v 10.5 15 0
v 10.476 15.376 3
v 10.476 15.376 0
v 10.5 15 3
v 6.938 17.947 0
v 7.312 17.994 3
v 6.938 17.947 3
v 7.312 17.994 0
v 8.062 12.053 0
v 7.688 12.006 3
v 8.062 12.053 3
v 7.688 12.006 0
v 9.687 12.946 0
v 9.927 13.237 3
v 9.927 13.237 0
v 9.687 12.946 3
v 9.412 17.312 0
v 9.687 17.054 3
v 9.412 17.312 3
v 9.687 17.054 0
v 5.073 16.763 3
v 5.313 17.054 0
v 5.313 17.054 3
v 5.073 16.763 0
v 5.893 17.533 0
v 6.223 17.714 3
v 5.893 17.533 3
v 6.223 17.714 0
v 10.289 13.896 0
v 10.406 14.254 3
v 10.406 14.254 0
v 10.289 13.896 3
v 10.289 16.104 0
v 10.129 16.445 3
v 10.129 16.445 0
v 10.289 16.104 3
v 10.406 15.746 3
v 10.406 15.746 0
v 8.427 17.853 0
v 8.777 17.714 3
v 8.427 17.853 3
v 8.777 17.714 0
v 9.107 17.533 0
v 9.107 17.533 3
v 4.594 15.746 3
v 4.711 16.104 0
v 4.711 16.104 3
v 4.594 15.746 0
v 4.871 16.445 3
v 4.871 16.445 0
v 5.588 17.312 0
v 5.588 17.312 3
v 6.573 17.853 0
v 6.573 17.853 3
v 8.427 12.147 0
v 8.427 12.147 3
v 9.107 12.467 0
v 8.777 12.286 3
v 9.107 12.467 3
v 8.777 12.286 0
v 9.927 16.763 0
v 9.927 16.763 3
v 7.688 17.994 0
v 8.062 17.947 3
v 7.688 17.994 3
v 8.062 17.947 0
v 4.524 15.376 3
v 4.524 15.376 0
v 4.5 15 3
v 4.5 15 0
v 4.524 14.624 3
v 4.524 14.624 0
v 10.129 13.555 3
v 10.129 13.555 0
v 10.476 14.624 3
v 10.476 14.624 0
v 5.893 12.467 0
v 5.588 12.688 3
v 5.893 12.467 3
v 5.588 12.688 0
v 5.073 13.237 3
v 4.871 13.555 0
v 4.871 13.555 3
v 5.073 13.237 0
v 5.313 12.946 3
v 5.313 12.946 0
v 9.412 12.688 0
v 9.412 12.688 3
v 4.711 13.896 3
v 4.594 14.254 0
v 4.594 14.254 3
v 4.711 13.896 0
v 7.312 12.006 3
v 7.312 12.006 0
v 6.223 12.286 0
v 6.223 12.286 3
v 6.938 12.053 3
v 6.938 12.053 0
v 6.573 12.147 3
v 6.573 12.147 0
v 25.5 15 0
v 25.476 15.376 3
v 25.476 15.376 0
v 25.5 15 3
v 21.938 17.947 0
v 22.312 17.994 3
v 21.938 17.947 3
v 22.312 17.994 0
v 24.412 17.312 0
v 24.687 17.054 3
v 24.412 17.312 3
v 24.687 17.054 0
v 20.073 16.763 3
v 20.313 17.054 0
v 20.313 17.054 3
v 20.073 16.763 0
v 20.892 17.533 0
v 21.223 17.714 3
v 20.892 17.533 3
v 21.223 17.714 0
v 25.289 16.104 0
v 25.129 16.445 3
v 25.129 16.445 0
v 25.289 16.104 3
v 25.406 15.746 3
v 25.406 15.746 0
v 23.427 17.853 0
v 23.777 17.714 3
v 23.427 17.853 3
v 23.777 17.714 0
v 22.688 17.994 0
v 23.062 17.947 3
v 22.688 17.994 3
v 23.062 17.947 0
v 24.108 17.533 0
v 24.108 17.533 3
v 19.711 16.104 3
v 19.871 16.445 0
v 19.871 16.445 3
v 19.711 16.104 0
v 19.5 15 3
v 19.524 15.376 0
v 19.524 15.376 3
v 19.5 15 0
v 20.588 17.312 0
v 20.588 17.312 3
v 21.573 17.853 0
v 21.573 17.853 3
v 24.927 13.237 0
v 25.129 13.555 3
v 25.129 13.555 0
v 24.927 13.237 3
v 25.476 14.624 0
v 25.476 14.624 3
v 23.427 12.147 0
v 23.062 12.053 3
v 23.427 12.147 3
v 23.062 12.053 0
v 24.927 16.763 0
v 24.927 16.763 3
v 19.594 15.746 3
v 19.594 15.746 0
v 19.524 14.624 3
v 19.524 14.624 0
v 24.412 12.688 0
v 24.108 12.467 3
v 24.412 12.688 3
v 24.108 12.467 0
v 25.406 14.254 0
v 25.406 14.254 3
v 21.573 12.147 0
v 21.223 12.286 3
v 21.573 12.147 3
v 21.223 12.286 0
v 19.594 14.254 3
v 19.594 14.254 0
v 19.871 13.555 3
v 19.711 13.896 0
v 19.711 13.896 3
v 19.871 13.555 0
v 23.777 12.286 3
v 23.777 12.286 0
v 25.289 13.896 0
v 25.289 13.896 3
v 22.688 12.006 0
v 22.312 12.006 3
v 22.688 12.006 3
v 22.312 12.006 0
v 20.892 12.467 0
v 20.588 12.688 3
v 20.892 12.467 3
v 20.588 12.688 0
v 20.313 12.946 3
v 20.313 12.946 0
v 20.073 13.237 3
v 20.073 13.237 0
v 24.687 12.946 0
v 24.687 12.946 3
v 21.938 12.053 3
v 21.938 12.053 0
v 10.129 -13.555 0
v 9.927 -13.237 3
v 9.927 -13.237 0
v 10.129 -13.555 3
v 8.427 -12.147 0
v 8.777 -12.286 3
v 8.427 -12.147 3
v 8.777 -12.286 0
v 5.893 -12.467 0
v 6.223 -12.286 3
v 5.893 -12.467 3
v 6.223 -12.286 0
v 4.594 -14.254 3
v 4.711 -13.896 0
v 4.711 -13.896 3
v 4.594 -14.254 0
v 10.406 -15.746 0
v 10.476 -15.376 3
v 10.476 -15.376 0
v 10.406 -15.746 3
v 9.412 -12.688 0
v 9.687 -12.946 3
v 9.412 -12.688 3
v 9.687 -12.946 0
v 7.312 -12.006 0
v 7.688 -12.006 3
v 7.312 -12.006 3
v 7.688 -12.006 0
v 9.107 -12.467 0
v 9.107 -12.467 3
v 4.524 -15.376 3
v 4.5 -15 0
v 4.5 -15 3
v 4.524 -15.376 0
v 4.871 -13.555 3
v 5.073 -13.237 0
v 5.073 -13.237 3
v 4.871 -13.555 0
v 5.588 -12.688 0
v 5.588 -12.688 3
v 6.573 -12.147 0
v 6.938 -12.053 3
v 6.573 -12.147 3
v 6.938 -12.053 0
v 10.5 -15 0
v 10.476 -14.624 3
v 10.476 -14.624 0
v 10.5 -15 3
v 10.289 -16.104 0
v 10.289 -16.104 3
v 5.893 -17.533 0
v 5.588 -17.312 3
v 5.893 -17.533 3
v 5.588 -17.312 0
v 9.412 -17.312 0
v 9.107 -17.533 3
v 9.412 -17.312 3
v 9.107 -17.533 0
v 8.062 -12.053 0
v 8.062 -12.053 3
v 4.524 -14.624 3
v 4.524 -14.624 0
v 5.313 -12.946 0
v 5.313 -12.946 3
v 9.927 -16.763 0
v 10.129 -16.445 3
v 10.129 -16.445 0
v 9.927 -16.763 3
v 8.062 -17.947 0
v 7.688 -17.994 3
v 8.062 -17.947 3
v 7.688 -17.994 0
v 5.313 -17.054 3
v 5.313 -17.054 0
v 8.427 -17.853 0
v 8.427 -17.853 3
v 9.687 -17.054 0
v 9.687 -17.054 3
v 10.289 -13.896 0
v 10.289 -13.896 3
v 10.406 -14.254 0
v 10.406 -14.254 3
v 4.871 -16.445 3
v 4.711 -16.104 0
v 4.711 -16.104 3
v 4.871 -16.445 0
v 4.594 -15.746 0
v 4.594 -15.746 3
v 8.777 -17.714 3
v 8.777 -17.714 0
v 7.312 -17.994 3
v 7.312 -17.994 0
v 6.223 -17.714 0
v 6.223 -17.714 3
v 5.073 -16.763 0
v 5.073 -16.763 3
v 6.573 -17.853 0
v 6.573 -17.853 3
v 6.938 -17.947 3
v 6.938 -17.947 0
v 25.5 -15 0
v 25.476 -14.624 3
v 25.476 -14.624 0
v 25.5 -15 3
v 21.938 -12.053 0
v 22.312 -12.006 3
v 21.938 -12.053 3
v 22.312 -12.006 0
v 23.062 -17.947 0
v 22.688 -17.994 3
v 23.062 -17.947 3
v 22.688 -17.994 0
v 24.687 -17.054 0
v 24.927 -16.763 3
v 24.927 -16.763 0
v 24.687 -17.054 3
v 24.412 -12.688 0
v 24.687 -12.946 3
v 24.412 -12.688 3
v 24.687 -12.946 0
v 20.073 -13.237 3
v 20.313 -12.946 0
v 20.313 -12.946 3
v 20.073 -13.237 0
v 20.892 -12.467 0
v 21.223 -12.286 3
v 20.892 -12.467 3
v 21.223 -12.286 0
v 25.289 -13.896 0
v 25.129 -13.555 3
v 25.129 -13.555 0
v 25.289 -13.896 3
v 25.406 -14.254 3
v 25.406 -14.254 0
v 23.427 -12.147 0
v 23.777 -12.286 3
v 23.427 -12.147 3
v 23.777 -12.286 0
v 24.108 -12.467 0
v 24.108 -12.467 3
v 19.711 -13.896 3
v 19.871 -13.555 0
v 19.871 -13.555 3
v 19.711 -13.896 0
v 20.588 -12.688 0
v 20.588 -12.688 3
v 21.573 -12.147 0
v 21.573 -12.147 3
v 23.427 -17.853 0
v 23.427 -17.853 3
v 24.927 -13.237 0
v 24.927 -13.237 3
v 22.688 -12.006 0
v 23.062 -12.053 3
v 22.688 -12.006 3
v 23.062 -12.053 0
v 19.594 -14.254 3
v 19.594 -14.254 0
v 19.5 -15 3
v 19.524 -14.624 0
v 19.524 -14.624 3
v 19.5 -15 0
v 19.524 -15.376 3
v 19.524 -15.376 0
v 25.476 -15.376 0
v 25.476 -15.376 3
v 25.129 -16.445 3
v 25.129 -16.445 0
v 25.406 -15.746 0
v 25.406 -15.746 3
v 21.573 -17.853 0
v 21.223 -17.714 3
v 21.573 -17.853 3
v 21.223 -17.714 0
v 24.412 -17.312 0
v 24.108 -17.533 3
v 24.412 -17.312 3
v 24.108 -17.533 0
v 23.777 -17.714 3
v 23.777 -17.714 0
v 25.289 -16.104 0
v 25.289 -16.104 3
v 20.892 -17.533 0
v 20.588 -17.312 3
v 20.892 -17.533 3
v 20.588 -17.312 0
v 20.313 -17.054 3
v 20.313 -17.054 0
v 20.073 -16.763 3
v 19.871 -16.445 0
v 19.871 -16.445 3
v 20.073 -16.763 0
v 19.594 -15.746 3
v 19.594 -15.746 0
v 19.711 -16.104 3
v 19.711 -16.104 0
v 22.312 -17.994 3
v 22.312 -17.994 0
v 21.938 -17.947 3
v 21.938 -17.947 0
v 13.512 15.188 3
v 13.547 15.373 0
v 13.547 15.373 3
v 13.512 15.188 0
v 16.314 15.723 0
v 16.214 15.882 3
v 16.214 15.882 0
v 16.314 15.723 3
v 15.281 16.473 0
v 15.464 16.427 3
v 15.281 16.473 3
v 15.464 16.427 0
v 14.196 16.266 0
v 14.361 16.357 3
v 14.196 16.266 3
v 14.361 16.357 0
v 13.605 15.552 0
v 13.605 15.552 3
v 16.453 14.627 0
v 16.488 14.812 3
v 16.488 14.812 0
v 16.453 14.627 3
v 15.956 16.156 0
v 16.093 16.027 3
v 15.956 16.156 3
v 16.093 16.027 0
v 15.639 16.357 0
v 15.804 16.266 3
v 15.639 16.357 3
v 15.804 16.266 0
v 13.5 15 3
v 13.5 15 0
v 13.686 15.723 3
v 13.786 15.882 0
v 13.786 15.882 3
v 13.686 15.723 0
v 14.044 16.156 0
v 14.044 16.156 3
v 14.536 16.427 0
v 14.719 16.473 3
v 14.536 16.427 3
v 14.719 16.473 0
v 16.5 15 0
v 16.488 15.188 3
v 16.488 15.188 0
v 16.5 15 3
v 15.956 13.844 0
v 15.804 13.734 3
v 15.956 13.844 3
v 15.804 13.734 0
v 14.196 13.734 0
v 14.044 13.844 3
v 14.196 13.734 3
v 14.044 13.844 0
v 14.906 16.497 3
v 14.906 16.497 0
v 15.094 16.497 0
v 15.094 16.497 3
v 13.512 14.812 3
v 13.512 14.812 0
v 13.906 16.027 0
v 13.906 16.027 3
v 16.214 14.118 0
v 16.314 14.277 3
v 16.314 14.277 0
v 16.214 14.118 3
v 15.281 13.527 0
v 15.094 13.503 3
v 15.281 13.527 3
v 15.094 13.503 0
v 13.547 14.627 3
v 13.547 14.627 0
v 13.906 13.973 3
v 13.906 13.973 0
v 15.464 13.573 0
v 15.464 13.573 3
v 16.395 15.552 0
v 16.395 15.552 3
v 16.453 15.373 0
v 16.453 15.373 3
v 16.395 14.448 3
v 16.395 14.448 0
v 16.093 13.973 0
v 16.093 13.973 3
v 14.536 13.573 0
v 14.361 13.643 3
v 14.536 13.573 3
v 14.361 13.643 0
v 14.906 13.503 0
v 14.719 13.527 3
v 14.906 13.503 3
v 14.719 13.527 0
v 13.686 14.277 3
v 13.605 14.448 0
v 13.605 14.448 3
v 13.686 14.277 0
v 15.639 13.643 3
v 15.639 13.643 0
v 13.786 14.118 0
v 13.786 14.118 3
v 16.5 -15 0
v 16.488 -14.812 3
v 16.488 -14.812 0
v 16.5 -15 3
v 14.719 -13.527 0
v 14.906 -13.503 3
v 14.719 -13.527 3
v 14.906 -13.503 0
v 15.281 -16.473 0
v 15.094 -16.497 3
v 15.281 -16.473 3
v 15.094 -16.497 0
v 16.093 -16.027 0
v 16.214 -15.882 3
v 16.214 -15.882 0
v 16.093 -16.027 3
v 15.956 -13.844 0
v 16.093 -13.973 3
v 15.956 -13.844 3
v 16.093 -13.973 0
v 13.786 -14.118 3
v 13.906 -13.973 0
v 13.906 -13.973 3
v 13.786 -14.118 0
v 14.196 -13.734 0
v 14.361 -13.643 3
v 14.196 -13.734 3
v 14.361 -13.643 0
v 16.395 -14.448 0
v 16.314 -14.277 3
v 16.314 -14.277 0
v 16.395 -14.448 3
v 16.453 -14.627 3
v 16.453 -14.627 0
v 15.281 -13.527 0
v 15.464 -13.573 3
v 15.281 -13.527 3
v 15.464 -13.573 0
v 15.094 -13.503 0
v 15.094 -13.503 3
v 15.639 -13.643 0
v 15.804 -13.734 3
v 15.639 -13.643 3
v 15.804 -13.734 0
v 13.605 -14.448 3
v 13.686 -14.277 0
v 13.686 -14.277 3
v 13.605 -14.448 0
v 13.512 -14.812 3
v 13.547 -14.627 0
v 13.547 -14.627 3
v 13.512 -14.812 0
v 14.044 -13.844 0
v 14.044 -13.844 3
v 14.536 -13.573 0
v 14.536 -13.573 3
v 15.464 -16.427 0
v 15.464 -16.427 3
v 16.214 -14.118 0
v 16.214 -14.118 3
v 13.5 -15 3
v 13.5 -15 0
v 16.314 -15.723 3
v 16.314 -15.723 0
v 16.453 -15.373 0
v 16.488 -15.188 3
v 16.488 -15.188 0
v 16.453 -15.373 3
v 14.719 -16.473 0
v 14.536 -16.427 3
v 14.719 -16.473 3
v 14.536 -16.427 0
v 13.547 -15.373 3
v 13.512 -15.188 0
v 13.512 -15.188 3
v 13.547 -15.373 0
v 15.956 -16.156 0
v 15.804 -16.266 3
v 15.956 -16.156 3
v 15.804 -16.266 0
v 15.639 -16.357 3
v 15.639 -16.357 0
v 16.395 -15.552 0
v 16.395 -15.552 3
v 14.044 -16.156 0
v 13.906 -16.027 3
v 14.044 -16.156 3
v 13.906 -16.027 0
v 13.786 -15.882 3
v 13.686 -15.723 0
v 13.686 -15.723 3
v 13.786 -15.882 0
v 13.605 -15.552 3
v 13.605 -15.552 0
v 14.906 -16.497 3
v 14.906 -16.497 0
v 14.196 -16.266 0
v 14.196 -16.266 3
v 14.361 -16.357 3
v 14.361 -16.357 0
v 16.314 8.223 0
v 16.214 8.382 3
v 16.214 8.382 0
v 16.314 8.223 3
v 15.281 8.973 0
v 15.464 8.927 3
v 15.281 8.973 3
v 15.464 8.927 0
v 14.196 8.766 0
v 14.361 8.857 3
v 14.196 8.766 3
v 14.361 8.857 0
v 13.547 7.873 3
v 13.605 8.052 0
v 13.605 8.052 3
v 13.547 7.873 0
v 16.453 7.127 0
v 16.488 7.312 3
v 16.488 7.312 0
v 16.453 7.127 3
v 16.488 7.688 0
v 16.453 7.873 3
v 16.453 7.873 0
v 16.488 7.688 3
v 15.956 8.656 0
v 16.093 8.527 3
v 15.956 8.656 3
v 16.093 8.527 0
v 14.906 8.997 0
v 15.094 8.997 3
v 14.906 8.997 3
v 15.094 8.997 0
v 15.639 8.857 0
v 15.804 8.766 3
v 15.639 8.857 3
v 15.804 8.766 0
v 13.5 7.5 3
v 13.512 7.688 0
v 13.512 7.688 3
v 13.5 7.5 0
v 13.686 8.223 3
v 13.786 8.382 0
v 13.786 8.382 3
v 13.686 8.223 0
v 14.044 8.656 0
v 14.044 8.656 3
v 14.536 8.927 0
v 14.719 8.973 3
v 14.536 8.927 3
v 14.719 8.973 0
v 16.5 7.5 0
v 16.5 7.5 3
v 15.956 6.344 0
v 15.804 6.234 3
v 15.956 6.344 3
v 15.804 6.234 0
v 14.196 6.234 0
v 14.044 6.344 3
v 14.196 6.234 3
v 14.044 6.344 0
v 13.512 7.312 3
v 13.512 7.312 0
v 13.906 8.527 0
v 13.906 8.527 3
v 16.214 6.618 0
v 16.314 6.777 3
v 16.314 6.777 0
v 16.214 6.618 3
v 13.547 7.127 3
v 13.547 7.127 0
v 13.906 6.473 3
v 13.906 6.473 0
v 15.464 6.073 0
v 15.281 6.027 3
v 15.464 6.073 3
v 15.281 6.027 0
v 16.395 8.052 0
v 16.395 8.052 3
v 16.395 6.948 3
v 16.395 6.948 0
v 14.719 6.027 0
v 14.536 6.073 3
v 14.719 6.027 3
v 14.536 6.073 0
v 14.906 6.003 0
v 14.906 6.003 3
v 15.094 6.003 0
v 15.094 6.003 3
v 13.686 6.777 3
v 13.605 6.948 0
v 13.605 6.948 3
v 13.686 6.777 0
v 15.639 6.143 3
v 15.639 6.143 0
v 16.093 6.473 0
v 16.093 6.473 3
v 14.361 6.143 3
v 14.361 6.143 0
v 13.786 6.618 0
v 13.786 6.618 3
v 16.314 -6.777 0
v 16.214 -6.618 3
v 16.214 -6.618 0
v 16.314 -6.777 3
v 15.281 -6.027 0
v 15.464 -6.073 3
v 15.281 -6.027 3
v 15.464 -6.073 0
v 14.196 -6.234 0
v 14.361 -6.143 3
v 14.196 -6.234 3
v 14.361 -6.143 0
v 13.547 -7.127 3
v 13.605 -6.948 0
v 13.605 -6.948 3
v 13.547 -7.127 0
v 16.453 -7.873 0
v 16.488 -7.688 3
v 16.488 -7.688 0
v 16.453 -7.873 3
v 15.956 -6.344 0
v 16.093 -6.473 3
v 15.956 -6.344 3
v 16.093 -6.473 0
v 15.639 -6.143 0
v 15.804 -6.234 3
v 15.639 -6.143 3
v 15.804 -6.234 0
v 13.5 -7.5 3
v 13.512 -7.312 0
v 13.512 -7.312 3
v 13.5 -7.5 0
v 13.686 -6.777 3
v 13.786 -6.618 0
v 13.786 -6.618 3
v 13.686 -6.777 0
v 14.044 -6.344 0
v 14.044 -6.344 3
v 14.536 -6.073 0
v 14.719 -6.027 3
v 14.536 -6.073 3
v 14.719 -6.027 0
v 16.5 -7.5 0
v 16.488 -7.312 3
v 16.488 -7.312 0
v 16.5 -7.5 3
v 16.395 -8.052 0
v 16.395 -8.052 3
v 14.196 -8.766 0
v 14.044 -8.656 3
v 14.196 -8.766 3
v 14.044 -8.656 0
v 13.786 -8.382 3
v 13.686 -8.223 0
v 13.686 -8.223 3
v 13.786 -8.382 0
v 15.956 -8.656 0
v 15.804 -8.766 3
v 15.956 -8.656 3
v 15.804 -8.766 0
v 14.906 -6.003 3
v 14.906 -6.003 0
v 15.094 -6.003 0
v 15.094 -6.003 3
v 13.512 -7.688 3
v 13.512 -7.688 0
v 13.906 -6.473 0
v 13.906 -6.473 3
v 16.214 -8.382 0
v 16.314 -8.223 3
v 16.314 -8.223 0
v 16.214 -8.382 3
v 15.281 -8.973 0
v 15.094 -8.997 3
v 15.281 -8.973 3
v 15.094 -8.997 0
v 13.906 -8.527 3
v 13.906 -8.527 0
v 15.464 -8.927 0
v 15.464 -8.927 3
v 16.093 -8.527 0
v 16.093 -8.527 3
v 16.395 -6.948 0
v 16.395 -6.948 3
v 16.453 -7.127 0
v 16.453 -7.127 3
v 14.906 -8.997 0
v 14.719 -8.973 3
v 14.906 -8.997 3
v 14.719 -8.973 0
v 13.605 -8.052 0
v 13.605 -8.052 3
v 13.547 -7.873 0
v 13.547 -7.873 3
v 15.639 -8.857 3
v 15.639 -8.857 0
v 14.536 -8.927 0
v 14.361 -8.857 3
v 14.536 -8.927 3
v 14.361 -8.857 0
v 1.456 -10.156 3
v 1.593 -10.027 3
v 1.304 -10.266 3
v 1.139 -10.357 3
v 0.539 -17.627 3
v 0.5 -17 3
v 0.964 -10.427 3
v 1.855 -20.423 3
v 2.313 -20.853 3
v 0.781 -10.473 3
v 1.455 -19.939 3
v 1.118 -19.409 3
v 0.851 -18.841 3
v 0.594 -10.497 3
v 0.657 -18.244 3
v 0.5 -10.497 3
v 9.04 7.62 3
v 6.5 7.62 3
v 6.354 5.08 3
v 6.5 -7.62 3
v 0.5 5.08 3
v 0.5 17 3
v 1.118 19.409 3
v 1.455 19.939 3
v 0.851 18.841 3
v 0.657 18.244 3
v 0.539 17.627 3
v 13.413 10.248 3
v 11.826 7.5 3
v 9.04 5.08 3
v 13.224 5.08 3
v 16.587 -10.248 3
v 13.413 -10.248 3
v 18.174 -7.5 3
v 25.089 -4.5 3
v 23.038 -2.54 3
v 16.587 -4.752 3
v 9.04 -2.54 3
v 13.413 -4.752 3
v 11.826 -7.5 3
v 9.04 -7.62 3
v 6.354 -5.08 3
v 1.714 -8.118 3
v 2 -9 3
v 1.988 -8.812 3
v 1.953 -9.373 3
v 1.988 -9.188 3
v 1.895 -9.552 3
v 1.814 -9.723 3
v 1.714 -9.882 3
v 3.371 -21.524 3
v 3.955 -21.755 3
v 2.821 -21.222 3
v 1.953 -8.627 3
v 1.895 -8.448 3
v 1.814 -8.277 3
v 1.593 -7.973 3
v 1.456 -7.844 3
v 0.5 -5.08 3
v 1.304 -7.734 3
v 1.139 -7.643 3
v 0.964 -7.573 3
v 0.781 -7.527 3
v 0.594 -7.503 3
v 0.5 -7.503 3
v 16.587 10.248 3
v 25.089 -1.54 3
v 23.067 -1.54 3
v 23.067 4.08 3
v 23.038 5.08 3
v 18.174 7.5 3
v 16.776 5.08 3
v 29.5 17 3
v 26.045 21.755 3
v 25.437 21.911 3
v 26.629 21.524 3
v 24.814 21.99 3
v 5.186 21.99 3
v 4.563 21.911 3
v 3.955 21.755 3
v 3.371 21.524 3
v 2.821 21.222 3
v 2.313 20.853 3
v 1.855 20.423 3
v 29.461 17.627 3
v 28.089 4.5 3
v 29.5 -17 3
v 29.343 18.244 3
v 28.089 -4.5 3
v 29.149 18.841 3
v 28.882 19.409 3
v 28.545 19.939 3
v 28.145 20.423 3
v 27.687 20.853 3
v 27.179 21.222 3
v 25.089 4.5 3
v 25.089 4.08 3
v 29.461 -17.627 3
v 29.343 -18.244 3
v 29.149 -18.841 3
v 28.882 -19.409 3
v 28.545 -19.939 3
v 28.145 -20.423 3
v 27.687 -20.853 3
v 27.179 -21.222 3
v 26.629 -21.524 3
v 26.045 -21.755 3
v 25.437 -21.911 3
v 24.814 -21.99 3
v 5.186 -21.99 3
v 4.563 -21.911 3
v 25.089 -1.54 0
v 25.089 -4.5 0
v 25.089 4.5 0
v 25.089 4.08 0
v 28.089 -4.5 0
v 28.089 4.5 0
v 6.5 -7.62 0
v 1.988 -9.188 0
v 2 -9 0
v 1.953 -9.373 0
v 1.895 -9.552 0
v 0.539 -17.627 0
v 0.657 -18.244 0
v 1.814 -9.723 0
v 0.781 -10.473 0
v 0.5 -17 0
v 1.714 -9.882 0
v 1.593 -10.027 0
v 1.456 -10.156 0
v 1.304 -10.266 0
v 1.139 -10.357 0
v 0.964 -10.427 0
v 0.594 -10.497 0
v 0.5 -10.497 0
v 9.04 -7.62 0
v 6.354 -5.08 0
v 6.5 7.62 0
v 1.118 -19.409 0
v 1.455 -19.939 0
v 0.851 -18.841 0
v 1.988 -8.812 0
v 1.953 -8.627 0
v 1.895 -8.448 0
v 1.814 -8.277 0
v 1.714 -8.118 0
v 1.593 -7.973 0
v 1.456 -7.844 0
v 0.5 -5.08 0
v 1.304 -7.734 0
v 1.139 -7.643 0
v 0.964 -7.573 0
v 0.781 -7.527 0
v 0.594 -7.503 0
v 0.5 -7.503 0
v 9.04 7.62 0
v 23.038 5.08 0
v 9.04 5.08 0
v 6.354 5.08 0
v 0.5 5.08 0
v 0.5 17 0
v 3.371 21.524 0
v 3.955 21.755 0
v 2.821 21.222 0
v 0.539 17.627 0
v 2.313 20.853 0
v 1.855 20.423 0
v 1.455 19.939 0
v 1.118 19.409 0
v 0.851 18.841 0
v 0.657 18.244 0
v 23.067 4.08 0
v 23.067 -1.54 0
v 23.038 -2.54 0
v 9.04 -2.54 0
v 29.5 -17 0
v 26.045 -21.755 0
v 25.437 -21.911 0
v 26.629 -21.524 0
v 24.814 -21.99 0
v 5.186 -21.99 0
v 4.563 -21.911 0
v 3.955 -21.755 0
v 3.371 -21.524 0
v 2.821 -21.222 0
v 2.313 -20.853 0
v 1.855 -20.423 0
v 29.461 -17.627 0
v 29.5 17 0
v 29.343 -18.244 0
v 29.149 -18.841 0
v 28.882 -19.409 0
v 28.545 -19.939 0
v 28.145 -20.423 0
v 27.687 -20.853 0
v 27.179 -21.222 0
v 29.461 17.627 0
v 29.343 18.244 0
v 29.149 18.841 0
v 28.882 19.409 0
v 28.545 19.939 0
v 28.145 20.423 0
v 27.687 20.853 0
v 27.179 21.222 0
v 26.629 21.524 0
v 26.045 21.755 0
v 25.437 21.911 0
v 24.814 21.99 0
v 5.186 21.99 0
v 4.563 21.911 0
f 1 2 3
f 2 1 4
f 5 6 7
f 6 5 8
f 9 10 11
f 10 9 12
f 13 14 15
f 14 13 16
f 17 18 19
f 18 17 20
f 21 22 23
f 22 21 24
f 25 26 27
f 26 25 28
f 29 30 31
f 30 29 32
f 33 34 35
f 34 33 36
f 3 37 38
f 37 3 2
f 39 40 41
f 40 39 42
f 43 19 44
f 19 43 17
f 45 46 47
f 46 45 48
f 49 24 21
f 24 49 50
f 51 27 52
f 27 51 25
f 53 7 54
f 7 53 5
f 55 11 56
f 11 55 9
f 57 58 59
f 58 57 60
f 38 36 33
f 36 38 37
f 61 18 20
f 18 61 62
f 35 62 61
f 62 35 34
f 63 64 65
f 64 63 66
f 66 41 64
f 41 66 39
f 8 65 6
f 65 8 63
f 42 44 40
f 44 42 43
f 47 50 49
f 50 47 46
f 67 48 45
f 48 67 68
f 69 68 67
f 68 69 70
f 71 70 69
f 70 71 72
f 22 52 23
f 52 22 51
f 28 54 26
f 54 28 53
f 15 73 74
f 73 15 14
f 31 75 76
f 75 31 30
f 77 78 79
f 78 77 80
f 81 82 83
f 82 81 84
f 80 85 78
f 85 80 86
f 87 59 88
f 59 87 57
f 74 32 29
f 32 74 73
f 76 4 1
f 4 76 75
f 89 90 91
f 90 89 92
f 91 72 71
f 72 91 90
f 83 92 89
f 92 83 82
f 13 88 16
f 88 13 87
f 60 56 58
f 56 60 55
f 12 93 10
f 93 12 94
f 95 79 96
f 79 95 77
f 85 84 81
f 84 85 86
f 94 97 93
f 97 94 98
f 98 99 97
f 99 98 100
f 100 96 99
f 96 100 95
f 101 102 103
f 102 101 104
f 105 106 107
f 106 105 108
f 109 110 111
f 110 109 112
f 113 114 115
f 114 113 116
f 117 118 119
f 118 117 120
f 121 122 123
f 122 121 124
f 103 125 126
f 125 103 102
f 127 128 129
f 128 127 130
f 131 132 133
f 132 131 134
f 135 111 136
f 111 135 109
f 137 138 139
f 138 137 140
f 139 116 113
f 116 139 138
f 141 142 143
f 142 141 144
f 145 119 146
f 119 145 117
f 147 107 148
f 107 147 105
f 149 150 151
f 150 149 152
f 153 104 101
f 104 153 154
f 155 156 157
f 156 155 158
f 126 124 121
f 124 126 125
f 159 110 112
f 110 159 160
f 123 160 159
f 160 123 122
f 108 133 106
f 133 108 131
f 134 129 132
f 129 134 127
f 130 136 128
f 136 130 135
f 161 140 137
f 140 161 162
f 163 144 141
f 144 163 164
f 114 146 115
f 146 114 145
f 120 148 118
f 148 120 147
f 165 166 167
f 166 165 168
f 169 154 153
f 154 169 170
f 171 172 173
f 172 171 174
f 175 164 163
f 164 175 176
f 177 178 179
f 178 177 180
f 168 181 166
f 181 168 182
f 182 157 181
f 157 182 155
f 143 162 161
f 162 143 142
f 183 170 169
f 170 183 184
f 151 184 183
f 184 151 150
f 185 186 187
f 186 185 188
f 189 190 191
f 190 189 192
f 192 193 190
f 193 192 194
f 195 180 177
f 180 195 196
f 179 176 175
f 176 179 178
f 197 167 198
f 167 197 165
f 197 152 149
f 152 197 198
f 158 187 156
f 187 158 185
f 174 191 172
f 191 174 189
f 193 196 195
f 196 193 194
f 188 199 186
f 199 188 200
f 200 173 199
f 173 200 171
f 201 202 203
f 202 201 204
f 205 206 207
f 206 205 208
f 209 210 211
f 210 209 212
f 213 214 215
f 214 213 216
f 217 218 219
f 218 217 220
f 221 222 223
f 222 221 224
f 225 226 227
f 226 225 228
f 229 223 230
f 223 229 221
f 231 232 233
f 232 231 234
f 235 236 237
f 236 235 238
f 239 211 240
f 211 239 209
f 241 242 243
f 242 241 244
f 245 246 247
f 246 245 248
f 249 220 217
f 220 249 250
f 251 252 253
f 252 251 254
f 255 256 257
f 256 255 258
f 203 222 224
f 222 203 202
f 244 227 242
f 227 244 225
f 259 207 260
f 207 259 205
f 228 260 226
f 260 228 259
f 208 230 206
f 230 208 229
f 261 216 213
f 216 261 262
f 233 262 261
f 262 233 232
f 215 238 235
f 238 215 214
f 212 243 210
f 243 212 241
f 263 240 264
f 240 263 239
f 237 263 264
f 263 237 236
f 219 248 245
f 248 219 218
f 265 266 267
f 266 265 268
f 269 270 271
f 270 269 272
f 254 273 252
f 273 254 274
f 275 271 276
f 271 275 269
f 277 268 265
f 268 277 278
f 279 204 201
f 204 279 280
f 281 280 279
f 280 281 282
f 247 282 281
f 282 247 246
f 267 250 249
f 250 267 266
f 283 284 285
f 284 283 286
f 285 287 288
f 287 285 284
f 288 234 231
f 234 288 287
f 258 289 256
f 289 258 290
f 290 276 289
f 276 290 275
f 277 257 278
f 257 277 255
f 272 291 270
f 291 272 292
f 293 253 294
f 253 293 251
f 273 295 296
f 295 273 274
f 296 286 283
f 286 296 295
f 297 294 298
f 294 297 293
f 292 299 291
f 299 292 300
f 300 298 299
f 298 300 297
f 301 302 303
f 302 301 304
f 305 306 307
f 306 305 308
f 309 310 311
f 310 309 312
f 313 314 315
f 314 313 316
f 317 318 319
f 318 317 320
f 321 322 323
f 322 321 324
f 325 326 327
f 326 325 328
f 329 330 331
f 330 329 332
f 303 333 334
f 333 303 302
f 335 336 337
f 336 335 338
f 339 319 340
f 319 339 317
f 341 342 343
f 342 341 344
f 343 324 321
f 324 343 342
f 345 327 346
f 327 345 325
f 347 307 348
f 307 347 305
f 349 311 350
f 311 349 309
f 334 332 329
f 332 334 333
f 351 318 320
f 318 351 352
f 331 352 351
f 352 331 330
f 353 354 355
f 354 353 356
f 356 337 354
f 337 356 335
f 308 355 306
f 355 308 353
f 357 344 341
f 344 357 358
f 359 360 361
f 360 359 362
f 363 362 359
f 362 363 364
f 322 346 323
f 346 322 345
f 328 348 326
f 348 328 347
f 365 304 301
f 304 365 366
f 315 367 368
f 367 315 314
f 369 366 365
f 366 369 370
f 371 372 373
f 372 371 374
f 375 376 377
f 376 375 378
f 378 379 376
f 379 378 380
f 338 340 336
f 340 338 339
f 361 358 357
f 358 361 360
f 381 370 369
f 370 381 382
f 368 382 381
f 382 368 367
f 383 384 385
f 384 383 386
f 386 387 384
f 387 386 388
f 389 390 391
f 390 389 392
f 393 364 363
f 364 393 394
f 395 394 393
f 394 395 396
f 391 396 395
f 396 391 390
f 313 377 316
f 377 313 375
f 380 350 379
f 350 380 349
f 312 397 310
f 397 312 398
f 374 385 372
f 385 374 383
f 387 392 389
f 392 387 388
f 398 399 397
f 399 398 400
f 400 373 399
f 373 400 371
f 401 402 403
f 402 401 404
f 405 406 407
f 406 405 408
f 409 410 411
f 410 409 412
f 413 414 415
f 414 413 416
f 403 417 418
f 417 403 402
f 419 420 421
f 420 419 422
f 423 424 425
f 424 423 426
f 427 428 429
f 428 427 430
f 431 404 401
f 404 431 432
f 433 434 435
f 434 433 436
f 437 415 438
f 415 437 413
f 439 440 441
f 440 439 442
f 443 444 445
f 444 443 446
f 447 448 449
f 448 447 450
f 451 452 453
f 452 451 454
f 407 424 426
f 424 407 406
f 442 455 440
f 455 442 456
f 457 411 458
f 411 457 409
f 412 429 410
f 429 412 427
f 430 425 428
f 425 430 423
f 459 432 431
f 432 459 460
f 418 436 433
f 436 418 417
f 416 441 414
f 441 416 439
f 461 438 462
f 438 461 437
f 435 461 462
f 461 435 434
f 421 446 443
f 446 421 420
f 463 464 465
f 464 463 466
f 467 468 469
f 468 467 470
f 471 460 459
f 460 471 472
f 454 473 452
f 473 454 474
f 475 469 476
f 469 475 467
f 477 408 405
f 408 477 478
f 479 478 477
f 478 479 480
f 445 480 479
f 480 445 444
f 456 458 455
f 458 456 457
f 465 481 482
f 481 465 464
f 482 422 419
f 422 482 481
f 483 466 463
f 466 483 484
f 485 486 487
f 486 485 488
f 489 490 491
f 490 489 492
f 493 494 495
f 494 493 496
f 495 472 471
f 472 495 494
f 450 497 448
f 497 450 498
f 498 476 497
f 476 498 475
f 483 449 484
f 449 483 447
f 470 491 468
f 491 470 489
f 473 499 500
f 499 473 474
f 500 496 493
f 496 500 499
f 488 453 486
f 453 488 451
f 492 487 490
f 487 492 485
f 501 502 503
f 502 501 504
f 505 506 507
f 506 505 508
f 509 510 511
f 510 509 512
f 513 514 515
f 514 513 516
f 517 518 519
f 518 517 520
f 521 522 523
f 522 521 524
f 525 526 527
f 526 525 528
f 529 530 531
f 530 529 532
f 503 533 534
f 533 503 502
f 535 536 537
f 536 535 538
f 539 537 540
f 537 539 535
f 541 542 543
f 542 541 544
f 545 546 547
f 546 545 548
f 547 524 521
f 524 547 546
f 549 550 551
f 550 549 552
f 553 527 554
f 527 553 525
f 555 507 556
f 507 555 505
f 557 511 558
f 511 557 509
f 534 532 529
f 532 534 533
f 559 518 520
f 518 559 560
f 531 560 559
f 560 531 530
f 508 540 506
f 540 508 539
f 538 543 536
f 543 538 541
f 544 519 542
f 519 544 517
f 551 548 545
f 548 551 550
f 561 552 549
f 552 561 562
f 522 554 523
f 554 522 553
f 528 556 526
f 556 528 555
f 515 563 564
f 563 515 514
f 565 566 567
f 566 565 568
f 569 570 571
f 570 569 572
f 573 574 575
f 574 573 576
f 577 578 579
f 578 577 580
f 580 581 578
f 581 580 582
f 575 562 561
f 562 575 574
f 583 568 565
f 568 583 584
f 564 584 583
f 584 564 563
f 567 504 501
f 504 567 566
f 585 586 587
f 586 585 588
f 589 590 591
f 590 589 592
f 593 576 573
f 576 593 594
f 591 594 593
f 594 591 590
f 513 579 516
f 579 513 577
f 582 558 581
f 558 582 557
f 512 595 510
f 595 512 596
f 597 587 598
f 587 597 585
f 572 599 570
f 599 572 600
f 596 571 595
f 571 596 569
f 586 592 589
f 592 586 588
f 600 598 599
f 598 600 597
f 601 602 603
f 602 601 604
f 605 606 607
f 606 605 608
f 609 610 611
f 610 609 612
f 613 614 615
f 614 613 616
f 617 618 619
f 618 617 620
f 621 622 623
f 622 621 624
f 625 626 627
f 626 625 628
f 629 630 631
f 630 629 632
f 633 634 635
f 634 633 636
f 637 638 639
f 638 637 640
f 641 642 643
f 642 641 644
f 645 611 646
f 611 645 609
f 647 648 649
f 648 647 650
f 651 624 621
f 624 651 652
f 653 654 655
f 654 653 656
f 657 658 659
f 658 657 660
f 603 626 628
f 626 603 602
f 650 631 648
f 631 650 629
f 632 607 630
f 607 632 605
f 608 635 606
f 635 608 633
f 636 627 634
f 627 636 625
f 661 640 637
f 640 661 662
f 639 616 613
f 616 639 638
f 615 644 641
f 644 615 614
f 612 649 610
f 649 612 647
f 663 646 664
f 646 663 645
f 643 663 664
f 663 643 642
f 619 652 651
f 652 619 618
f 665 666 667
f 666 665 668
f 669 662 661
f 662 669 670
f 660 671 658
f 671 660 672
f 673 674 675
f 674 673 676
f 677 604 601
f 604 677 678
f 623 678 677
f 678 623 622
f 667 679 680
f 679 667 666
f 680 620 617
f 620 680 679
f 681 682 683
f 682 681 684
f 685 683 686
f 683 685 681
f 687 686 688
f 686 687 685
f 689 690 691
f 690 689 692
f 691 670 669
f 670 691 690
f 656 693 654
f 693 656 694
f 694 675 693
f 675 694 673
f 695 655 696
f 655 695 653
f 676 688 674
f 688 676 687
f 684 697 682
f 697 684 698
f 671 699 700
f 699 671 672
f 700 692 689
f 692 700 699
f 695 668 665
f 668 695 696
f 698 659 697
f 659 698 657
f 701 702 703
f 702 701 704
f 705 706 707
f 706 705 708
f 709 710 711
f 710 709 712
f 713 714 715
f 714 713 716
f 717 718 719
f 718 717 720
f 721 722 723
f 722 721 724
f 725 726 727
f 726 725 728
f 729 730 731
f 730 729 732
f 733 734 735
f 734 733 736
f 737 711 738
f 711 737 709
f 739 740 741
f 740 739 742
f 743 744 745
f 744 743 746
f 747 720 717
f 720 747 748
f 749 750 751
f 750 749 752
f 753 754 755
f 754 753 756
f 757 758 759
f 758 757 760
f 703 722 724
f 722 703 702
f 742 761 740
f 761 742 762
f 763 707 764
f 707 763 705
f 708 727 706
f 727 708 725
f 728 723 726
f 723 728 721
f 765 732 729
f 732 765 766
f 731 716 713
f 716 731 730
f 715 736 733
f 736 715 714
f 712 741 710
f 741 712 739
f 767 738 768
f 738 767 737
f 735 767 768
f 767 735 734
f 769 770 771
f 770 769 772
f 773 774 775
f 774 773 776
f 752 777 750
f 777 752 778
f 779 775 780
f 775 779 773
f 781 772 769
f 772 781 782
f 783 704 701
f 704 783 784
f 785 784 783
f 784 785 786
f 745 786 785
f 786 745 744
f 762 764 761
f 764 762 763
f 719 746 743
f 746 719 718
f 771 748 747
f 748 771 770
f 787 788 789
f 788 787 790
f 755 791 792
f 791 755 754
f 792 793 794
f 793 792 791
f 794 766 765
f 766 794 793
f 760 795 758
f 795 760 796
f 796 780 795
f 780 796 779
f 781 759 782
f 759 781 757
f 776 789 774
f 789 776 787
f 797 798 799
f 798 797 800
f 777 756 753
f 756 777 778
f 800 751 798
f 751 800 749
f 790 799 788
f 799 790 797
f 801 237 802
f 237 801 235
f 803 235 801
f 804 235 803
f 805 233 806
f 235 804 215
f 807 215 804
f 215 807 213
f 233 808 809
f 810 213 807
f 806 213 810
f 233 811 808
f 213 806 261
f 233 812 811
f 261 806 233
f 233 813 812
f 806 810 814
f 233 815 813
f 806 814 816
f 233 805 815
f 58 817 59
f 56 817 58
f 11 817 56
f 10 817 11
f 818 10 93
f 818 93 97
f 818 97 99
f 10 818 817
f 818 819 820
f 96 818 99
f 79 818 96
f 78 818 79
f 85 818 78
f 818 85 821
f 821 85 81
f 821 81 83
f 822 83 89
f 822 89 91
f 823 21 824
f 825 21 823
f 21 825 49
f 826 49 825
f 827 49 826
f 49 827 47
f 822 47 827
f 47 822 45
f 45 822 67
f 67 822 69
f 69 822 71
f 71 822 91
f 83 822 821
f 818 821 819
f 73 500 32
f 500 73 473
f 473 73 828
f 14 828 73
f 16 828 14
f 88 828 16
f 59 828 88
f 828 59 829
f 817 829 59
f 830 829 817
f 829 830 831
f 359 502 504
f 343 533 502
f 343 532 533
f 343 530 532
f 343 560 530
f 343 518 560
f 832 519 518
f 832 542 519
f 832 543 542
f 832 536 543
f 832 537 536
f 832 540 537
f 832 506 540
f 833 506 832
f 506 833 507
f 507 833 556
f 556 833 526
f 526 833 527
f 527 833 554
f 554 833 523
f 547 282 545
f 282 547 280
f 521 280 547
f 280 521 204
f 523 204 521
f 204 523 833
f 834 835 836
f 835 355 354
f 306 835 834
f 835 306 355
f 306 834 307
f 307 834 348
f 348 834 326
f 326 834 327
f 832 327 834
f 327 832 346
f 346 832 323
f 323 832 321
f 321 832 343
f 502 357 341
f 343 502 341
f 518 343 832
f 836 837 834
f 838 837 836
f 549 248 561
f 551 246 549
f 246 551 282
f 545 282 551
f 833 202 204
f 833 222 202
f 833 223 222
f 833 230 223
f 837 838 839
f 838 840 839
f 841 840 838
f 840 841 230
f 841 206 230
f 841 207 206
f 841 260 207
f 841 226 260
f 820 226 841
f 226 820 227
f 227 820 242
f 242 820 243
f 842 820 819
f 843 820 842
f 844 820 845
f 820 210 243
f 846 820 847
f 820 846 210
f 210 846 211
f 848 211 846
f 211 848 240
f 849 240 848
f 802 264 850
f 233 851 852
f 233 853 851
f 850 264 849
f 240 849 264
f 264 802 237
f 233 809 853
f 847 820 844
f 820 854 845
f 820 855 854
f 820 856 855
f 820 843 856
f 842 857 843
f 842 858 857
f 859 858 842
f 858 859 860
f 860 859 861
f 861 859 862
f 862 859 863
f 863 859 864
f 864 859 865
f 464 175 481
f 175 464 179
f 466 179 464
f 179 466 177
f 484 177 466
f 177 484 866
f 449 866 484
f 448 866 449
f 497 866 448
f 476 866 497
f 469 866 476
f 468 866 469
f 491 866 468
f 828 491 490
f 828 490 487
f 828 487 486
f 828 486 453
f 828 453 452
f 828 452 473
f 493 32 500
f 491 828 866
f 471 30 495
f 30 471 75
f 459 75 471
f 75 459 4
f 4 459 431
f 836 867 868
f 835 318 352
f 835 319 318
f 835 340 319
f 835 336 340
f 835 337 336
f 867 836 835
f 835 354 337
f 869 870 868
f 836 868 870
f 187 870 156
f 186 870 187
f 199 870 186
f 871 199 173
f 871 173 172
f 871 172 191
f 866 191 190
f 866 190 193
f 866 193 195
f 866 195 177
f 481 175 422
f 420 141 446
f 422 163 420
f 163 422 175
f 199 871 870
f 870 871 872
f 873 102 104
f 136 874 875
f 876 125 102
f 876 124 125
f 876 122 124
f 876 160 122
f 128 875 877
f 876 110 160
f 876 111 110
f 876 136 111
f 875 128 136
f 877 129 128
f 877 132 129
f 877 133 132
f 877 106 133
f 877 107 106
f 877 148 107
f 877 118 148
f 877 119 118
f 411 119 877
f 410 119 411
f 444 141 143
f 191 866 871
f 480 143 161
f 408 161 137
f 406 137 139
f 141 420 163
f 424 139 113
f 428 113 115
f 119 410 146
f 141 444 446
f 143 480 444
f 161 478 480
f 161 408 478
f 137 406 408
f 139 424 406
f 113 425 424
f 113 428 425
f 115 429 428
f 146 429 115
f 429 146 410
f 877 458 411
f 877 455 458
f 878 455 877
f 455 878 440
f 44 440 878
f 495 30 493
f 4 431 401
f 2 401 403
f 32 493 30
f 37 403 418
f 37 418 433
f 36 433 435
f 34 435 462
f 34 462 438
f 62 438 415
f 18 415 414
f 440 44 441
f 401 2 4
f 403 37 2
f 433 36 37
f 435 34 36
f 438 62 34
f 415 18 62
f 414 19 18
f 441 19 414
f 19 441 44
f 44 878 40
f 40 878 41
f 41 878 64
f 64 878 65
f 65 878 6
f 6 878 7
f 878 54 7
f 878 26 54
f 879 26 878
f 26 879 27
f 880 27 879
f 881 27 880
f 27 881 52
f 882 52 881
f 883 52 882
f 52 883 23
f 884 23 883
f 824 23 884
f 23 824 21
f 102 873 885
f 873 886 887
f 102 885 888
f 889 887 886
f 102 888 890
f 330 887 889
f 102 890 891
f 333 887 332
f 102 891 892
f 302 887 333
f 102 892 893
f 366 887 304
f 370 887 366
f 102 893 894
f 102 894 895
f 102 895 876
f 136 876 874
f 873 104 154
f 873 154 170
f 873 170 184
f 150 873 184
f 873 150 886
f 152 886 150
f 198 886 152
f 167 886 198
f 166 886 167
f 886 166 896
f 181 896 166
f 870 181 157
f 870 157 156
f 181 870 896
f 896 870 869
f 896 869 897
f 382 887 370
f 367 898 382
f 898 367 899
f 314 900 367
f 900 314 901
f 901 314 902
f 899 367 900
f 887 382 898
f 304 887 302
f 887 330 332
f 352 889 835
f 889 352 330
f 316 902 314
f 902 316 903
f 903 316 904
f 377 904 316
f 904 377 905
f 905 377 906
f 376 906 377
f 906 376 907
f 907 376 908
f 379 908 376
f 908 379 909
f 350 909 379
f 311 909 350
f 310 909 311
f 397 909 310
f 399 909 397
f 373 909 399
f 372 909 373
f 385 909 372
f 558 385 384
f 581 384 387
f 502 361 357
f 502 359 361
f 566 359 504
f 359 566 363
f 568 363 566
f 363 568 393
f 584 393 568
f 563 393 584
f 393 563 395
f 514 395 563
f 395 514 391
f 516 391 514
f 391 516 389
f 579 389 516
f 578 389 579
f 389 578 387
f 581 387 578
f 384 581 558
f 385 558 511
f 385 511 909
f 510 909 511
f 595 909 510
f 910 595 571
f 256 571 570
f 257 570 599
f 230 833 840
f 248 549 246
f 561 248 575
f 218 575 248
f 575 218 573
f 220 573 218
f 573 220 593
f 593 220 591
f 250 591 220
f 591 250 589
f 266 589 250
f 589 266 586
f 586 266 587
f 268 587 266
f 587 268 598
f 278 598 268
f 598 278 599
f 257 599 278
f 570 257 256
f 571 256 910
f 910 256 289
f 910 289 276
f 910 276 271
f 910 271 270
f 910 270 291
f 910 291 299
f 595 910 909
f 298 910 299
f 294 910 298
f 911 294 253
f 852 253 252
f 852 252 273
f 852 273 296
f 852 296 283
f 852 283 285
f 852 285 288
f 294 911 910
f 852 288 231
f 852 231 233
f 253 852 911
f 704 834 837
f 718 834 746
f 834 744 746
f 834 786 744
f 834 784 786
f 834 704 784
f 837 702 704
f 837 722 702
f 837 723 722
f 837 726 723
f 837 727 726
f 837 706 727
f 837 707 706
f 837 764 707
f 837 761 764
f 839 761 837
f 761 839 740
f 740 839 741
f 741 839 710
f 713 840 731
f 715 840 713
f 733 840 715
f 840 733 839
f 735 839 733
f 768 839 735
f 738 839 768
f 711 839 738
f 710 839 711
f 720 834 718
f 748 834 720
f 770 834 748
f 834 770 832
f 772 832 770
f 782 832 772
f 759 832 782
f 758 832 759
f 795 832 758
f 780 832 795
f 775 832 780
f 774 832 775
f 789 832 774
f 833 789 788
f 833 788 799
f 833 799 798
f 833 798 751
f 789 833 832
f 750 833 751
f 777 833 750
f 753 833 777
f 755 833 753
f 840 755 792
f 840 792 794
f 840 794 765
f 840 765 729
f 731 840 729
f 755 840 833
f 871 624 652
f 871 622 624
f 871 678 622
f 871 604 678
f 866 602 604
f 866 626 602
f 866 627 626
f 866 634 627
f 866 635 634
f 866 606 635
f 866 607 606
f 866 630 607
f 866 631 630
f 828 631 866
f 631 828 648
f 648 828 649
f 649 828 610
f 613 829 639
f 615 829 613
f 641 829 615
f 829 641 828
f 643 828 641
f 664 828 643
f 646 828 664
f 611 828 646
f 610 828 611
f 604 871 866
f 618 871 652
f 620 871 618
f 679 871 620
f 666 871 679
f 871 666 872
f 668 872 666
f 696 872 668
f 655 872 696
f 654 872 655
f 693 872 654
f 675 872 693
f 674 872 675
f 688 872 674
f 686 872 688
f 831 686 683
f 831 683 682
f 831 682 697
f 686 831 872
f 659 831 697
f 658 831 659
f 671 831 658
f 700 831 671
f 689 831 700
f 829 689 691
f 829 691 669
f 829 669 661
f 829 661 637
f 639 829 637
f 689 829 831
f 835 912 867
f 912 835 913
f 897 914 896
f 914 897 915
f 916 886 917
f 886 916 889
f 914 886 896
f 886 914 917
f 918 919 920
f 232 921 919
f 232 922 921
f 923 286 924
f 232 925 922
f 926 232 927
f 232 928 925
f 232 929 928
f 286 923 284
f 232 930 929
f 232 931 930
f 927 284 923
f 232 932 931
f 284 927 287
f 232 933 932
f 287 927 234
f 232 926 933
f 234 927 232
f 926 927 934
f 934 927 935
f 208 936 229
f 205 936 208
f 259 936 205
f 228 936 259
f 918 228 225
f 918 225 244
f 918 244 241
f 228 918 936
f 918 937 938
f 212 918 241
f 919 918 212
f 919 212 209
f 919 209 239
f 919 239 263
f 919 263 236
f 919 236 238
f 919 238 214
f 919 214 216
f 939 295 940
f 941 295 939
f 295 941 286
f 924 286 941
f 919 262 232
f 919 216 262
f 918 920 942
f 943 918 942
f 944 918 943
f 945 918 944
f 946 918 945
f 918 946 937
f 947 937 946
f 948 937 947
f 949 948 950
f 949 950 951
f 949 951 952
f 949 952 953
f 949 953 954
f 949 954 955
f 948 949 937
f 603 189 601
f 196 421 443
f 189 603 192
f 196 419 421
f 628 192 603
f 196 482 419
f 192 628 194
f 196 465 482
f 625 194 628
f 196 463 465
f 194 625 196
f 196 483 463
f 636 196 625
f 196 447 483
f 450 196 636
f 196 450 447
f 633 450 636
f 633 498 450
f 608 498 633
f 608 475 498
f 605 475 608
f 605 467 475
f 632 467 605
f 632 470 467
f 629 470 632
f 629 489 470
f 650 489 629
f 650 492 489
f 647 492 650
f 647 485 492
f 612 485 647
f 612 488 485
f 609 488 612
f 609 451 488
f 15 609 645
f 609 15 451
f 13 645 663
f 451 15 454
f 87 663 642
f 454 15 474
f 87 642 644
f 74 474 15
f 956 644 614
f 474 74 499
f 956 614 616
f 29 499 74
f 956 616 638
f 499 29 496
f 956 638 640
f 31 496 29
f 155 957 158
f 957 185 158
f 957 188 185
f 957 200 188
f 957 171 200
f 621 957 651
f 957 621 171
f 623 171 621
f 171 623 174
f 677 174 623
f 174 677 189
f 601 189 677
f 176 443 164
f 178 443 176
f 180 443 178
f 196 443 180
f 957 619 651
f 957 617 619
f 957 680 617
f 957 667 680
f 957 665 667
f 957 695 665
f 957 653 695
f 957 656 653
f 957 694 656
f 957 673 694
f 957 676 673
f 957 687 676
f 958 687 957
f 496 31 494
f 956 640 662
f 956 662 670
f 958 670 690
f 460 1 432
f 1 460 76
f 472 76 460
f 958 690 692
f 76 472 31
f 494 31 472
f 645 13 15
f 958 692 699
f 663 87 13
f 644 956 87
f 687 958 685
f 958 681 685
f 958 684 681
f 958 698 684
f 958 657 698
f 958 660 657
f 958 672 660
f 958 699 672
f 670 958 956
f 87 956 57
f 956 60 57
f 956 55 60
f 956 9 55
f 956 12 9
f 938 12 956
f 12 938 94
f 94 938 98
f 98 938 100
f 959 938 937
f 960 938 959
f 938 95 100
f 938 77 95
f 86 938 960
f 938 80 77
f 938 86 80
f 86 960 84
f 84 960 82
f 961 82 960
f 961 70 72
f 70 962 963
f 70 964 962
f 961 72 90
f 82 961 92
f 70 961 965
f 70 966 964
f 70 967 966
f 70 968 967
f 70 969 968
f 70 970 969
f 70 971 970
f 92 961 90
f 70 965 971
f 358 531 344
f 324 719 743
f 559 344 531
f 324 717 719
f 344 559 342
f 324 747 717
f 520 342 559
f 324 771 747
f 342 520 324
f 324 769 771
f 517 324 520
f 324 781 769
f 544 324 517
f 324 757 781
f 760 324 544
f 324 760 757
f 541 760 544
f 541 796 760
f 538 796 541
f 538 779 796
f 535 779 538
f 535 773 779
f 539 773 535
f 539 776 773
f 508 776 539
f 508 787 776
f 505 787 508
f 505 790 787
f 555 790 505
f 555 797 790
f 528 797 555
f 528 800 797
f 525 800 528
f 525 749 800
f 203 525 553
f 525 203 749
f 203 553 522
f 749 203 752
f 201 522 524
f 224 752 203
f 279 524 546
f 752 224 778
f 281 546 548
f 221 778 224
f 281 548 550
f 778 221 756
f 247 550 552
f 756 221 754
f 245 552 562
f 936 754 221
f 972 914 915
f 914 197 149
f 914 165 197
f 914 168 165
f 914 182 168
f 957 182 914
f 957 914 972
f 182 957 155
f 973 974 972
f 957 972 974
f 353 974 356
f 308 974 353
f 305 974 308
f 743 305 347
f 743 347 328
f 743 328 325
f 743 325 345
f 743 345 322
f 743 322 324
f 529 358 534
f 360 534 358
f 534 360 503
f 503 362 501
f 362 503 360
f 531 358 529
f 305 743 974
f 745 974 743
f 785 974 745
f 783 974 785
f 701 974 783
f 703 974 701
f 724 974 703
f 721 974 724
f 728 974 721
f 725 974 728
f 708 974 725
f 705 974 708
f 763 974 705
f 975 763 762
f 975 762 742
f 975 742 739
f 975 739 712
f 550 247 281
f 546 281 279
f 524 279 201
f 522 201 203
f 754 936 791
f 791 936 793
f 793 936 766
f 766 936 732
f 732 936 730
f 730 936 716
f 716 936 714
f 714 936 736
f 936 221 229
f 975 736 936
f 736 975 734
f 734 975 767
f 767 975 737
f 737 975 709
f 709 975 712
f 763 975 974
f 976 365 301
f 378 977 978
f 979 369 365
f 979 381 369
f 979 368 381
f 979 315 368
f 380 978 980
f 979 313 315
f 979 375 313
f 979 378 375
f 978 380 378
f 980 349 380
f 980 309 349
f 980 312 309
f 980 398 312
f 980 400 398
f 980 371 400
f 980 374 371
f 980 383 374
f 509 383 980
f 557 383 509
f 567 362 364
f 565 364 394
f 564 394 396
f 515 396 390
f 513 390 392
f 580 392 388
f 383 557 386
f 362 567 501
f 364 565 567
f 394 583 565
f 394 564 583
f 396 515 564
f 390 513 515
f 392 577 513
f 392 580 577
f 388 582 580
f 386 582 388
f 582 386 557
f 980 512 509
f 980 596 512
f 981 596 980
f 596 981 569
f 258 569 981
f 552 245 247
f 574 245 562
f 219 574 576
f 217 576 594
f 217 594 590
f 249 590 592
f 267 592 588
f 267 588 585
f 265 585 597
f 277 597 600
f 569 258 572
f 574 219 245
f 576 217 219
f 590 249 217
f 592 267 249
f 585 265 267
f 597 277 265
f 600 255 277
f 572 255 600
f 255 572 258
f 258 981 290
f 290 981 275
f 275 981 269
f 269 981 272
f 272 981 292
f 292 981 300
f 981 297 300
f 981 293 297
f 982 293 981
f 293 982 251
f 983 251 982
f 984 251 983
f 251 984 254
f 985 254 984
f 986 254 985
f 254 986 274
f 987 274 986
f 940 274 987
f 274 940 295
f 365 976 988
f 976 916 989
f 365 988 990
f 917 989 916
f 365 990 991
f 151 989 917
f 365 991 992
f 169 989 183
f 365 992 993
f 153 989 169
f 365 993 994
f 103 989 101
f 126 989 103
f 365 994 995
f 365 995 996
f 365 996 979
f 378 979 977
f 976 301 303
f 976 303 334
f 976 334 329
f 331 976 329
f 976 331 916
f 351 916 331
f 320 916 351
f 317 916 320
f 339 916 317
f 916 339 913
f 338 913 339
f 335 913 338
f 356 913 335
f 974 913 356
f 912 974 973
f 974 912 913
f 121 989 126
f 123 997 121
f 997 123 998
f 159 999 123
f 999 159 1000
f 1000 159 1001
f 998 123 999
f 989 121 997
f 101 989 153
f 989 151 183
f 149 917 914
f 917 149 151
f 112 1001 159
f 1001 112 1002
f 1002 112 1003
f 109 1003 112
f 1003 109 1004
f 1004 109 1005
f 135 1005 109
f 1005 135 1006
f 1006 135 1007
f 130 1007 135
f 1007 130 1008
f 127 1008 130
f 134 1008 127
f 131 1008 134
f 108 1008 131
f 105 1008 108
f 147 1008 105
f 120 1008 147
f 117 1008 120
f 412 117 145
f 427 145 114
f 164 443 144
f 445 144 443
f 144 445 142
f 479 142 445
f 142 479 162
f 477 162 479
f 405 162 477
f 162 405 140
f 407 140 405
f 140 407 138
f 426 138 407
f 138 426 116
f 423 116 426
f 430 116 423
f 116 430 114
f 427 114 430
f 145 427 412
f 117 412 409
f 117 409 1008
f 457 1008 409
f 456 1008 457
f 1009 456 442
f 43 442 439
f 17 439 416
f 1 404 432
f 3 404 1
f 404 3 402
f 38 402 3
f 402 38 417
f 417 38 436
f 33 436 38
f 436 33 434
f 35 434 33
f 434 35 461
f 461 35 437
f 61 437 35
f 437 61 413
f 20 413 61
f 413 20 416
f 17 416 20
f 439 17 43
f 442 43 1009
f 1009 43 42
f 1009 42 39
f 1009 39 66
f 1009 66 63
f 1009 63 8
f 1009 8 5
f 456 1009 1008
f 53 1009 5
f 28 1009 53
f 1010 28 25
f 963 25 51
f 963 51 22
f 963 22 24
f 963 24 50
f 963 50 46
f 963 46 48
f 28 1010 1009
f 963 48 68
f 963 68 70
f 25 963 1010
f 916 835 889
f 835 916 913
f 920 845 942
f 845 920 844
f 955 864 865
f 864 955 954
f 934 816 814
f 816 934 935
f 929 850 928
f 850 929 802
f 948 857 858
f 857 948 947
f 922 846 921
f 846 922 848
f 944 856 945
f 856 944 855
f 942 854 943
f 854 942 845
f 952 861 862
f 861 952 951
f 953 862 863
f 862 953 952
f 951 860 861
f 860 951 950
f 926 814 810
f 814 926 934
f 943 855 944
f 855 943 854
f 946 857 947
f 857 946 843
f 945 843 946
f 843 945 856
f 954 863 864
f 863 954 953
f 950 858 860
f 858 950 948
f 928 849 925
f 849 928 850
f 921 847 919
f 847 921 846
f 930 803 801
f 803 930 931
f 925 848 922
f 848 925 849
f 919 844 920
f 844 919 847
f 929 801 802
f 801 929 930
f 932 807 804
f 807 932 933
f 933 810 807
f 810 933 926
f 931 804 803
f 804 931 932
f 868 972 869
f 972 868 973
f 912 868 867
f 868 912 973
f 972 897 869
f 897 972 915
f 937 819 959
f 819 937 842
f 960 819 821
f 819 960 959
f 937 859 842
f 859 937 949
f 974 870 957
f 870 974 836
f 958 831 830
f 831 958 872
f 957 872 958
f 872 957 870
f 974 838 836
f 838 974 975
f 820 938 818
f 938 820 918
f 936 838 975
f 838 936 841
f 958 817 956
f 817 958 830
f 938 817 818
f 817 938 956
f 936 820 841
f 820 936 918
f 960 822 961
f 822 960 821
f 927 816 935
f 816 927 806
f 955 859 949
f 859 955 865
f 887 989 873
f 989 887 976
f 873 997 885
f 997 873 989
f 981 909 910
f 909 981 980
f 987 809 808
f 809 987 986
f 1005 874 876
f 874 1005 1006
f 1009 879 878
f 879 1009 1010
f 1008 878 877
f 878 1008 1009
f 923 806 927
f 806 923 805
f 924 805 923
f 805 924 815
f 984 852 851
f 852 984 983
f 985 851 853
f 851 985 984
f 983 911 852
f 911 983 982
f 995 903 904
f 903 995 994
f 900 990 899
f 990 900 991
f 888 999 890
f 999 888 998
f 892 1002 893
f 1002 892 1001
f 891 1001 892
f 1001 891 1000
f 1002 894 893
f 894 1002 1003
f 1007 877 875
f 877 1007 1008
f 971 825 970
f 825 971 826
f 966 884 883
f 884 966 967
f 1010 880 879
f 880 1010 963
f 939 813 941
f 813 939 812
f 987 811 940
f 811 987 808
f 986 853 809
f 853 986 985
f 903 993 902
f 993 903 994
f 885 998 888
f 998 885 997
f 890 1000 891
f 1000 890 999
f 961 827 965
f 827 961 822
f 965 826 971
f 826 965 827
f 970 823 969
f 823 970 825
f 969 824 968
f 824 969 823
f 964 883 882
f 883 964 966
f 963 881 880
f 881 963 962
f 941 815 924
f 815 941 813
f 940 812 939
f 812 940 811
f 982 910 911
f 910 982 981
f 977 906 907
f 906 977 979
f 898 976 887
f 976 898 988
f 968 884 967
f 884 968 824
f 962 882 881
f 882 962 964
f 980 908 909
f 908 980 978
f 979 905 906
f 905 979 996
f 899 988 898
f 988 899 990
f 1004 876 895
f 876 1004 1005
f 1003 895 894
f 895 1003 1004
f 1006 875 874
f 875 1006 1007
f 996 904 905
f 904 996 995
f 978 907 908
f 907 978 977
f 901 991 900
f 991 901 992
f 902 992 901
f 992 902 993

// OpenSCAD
$fn = 50;


difference() {
	union() {
		translate(v = [15.0000000000, 0, 0]) {
			rotate(a = [0, 0, 0]) {
				hull() {
					translate(v = [-9.5000000000, 17.0000000000, 0]) {
						rotate(a = [0, 0, 0]) {
							translate(v = [0, 0, 0]) {
								rotate(a = [0, 0, 0]) {
									cylinder(h = 3, r = 5);
								}
							}
						}
					}
					translate(v = [9.5000000000, 17.0000000000, 0]) {
						rotate(a = [0, 0, 0]) {
							translate(v = [0, 0, 0]) {
								rotate(a = [0, 0, 0]) {
									cylinder(h = 3, r = 5);
								}
							}
						}
					}
					translate(v = [-9.5000000000, -17.0000000000, 0]) {
						rotate(a = [0, 0, 0]) {
							translate(v = [0, 0, 0]) {
								rotate(a = [0, 0, 0]) {
									cylinder(h = 3, r = 5);
								}
							}
						}
					}
					translate(v = [9.5000000000, -17.0000000000, 0]) {
						rotate(a = [0, 0, 0]) {
							translate(v = [0, 0, 0]) {
								rotate(a = [0, 0, 0]) {
									cylinder(h = 3, r = 5);
								}
							}
						}
					}
				}
			}
		}
	}
	union() {
		translate(v = [7.5000000000, 15.0000000000, -125.0000000000]) {
			rotate(a = [0, 0, 0]) {
				cylinder(h = 250, r = 3.0000000000);
			}
		}
		translate(v = [22.5000000000, 15.0000000000, -125.0000000000]) {
			rotate(a = [0, 0, 0]) {
				cylinder(h = 250, r = 3.0000000000);
			}
		}
		translate(v = [7.5000000000, -15.0000000000, -125.0000000000]) {
			rotate(a = [0, 0, 0]) {
				cylinder(h = 250, r = 3.0000000000);
			}
		}
		translate(v = [22.5000000000, -15.0000000000, -125.0000000000]) {
			rotate(a = [0, 0, 0]) {
				cylinder(h = 250, r = 3.0000000000);
			}
		}
		translate(v = [7.5000000000, 15.0000000000, -125.0000000000]) {
			rotate(a = [0, 0, 0]) {
				cylinder(h = 250, r = 1.5000000000);
			}
		}
		translate(v = [15.0000000000, 15.0000000000, -125.0000000000]) {
			rotate(a = [0, 0, 0]) {
				cylinder(h = 250, r = 1.5000000000);
			}
		}
		translate(v = [22.5000000000, 15.0000000000, -125.0000000000]) {
			rotate(a = [0, 0, 0]) {
				cylinder(h = 250, r = 1.5000000000);
			}
		}
		translate(v = [7.5000000000, -15.0000000000, -125.0000000000]) {
			rotate(a = [0, 0, 0]) {
				cylinder(h = 250, r = 1.5000000000);
			}
		}
		translate(v = [15.0000000000, -15.0000000000, -125.0000000000]) {
			rotate(a = [0, 0, 0]) {
				cylinder(h = 250, r = 1.5000000000);
			}
		}
		translate(v = [22.5000000000, -15.0000000000, -125.0000000000]) {
			rotate(a = [0, 0, 0]) {
				cylinder(h = 250, r = 1.5000000000);
			}
		}
		translate(v = [15, 7.5000000000, -125.0000000000]) {
			rotate(a = [0, 0, 0]) {
				cylinder(h = 250, r = 1.5000000000);
			}
		}
		translate(v = [15, -7.5000000000, -125.0000000000]) {
			rotate(a = [0, 0, 0]) {
				cylinder(h = 250, r = 1.5000000000);
			}
		}
		translate(v = [15, 7.5000000000, 3]) {
			rotate(a = [0, 0, 0]) {
				translate(v = [0, 0, 0]) {
					rotate(a = [0, 0, 0]) {
						linear_extrude(height = 2.5000000000) {
							polygon(points = [[3.1735000000, 0.0000000000], [1.5867500000, 2.7483316189], [-1.5867500000, 2.7483316189], [-3.1735000000, 0.0000000000], [-1.5867500000, -2.7483316189], [1.5867500000, -2.7483316189]]);
						}
					}
				}
			}
		}
		translate(v = [15, -7.5000000000, 3]) {
			rotate(a = [0, 0, 0]) {
				translate(v = [0, 0, 0]) {
					rotate(a = [0, 0, 0]) {
						linear_extrude(height = 2.5000000000) {
							polygon(points = [[3.1735000000, 0.0000000000], [1.5867500000, 2.7483316189], [-1.5867500000, 2.7483316189], [-3.1735000000, 0.0000000000], [-1.5867500000, -2.7483316189], [1.5867500000, -2.7483316189]]);
						}
					}
				}
			}
		}
		translate(v = [25.0890000000, -4.5000000000, 0]) {
			rotate(a = [0, 0, 0]) {
				cube(size = [3, 9, 10]);
			}
		}
		translate(v = [0.5000000000, -9, 0.0000000000]) {
			rotate(a = [0, 0, 0]) {
				cylinder(h = 3, r = 1.5000000000);
			}
		}
		translate(v = [23.0670000000, -1.5110000000, 0]) {
			rotate(a = [0, 0, 0]) {
				cube(size = [5, 5.6200000000, 3]);
			}
		}
		translate(v = [0.3540000000, -5.0800000000, 0]) {
			rotate(a = [0, 0, 0]) {
				cube(size = [6, 10.1600000000, 3]);
			}
		}
		translate(v = [9.0380000000, -2.5400000000, 0]) {
			rotate(a = [0, 0, 0]) {
				cube(size = [14, 7.6200000000, 3]);
			}
		}
		translate(v = [6.5000000000, -7.6200000000, 0]) {
			rotate(a = [0, 0, 0]) {
				cube(size = [2.5400000000, 15.2400000000, 3]);
			}
		}
	}
}
